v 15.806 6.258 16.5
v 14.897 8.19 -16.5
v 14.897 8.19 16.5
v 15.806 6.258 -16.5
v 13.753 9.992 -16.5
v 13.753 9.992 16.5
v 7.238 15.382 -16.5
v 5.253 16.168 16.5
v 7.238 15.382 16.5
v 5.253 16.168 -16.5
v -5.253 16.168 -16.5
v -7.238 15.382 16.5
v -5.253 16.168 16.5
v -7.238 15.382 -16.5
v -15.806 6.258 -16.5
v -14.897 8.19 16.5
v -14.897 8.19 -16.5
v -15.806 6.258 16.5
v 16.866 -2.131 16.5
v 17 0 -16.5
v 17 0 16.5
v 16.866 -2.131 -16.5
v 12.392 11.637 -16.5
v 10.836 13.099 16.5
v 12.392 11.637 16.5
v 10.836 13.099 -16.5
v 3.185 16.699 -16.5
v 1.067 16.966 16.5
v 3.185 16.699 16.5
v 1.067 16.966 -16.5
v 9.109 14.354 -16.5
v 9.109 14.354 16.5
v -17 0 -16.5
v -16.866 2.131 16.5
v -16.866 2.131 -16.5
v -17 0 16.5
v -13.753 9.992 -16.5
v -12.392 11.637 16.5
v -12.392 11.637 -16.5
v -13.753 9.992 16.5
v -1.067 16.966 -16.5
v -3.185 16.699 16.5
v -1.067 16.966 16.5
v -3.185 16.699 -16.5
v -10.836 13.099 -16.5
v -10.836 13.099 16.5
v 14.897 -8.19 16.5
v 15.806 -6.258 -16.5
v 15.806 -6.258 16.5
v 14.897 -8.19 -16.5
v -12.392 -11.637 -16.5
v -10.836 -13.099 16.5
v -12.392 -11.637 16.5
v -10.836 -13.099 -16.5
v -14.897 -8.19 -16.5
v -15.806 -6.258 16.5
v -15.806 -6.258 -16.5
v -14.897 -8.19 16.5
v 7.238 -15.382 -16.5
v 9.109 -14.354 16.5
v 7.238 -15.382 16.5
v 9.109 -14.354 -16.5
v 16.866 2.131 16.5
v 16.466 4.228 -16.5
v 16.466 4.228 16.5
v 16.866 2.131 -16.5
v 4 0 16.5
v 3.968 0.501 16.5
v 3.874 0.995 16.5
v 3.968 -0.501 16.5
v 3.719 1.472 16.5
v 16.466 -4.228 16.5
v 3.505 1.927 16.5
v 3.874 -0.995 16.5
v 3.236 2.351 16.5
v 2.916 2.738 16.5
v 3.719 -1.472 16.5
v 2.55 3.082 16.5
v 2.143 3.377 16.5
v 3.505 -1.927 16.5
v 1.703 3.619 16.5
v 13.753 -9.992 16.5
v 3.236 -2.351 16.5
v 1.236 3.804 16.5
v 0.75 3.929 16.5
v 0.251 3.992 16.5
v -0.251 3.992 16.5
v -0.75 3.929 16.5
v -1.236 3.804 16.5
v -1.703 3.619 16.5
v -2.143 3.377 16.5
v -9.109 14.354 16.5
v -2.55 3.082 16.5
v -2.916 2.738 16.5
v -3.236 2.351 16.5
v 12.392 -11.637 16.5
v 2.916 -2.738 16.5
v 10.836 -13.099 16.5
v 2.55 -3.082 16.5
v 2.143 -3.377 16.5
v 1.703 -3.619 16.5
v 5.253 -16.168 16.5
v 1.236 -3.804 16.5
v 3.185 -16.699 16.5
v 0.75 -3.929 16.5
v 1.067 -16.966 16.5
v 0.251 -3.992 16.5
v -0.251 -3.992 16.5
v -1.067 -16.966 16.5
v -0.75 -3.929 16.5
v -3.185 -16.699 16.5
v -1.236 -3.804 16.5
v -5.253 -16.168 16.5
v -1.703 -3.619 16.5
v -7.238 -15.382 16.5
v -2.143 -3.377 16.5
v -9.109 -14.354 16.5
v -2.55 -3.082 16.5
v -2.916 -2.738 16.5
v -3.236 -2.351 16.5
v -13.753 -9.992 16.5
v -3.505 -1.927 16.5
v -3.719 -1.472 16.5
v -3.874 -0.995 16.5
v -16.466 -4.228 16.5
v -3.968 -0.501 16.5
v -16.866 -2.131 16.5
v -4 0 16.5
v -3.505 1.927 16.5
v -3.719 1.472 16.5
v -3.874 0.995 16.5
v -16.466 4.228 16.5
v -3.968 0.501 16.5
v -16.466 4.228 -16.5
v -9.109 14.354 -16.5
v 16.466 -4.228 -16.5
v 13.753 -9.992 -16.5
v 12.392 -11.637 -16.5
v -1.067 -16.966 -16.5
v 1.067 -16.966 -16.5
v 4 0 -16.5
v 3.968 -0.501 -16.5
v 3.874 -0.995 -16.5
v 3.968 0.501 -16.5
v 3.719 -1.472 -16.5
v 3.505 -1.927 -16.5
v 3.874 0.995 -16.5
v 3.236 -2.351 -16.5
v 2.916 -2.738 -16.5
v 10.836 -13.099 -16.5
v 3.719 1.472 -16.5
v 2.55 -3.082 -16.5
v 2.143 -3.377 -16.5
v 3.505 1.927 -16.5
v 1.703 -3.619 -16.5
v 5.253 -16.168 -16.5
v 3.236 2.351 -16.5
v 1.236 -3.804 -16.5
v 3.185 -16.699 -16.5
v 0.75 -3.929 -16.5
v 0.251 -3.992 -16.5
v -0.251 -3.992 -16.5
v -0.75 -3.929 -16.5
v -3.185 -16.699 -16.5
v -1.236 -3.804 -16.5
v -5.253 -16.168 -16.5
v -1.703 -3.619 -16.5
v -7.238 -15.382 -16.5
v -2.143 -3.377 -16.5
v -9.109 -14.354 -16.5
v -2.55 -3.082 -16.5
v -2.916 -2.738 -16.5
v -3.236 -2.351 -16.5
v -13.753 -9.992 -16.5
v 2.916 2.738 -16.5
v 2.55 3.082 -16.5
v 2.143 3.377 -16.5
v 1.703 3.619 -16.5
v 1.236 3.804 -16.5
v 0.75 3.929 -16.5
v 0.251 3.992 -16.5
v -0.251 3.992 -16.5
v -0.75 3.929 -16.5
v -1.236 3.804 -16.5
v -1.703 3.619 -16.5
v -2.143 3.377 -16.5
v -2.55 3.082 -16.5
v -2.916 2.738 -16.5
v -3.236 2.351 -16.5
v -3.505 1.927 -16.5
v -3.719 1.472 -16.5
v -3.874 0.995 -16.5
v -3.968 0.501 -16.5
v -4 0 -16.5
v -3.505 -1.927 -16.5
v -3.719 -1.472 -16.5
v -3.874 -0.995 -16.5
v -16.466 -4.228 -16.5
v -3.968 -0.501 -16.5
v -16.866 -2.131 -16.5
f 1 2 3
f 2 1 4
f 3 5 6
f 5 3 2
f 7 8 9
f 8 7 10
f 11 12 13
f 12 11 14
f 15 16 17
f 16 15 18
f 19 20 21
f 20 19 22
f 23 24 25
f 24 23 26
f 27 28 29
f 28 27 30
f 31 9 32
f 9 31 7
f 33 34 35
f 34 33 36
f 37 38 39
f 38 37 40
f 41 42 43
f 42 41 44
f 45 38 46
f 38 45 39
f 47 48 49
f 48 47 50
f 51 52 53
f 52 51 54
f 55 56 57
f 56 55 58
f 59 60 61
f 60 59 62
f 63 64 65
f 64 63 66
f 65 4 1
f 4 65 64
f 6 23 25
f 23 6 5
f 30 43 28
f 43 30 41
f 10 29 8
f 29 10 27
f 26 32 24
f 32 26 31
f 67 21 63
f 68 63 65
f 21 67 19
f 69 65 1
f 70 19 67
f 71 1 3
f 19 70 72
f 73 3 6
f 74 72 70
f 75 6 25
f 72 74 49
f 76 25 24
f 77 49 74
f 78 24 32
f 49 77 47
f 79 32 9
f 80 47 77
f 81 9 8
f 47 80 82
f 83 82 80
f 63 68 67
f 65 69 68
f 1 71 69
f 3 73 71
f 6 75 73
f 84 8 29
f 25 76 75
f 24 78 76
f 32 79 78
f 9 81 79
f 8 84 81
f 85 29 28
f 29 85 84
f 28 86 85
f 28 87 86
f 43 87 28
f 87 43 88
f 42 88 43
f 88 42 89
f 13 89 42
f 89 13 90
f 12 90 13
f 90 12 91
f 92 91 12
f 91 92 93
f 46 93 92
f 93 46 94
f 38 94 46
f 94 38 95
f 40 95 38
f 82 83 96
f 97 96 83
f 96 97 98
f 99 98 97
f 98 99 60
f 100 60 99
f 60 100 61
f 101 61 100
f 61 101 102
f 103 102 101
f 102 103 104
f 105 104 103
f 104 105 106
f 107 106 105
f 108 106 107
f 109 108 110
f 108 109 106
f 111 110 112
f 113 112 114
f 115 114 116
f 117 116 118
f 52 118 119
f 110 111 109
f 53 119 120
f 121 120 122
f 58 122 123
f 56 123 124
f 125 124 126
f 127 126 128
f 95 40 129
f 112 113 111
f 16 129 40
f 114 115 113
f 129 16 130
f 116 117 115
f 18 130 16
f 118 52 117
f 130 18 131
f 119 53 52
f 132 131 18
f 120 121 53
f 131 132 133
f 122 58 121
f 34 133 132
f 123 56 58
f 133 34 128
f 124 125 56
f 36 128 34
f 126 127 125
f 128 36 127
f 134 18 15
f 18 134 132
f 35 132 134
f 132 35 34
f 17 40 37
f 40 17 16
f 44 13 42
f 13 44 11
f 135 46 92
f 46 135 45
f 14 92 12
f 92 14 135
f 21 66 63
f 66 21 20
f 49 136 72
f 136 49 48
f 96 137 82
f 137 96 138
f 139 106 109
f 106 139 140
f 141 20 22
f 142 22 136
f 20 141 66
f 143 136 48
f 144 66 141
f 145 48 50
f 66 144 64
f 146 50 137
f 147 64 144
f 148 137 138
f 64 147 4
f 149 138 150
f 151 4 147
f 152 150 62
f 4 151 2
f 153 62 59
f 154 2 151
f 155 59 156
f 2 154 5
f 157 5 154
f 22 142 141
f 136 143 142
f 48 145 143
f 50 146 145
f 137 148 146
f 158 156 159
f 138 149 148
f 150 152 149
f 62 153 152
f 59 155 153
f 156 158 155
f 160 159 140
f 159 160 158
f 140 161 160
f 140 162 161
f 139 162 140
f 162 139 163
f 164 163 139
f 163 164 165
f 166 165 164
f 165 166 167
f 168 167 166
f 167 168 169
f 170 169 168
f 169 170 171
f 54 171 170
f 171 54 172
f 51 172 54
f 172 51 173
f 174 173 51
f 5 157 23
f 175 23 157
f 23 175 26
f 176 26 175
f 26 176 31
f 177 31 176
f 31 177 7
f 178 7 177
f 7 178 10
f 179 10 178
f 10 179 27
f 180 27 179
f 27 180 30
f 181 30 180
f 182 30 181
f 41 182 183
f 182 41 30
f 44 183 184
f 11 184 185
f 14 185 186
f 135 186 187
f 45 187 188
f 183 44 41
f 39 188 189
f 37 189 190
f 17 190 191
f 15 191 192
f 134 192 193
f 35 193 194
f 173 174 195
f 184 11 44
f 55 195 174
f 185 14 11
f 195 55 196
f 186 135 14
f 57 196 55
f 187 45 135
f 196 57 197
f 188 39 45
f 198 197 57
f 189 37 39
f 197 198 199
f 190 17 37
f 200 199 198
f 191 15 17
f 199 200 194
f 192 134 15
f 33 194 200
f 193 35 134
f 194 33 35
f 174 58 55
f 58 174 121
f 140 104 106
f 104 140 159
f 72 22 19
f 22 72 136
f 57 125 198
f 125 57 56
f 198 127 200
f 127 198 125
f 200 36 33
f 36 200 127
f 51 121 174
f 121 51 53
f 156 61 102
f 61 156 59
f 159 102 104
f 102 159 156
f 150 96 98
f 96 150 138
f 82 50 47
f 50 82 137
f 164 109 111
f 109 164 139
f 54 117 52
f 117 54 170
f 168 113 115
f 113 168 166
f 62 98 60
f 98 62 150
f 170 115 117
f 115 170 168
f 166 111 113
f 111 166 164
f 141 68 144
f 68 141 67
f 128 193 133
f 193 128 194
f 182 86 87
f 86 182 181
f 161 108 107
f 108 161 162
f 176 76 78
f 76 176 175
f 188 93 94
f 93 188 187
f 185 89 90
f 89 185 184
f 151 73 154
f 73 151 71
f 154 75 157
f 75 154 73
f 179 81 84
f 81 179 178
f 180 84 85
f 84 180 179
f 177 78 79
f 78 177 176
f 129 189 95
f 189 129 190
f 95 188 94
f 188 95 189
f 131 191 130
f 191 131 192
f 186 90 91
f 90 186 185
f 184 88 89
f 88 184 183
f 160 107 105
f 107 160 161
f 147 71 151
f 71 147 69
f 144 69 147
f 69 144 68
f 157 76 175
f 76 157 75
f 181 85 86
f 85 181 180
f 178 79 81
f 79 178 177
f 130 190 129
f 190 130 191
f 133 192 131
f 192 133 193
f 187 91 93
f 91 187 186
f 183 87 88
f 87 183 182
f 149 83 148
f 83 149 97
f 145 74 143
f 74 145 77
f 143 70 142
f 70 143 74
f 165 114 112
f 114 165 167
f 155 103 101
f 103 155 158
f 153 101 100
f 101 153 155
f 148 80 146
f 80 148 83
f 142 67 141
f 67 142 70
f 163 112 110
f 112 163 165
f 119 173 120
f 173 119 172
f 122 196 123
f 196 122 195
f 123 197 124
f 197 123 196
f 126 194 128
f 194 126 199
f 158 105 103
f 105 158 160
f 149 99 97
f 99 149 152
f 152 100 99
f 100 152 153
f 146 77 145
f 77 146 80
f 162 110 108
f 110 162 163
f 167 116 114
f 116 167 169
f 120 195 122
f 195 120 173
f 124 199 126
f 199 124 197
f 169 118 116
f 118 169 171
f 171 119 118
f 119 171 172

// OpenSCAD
$fn = 50;


difference() {
	union() {
		translate(v = [0, 0, -16.5000000000]) {
			cylinder(h = 33, r = 17.0000000000);
		}
	}
	union() {
		translate(v = [0, 0, -100.0000000000]) {
			cylinder(h = 200, r = 4);
		}
	}
}
